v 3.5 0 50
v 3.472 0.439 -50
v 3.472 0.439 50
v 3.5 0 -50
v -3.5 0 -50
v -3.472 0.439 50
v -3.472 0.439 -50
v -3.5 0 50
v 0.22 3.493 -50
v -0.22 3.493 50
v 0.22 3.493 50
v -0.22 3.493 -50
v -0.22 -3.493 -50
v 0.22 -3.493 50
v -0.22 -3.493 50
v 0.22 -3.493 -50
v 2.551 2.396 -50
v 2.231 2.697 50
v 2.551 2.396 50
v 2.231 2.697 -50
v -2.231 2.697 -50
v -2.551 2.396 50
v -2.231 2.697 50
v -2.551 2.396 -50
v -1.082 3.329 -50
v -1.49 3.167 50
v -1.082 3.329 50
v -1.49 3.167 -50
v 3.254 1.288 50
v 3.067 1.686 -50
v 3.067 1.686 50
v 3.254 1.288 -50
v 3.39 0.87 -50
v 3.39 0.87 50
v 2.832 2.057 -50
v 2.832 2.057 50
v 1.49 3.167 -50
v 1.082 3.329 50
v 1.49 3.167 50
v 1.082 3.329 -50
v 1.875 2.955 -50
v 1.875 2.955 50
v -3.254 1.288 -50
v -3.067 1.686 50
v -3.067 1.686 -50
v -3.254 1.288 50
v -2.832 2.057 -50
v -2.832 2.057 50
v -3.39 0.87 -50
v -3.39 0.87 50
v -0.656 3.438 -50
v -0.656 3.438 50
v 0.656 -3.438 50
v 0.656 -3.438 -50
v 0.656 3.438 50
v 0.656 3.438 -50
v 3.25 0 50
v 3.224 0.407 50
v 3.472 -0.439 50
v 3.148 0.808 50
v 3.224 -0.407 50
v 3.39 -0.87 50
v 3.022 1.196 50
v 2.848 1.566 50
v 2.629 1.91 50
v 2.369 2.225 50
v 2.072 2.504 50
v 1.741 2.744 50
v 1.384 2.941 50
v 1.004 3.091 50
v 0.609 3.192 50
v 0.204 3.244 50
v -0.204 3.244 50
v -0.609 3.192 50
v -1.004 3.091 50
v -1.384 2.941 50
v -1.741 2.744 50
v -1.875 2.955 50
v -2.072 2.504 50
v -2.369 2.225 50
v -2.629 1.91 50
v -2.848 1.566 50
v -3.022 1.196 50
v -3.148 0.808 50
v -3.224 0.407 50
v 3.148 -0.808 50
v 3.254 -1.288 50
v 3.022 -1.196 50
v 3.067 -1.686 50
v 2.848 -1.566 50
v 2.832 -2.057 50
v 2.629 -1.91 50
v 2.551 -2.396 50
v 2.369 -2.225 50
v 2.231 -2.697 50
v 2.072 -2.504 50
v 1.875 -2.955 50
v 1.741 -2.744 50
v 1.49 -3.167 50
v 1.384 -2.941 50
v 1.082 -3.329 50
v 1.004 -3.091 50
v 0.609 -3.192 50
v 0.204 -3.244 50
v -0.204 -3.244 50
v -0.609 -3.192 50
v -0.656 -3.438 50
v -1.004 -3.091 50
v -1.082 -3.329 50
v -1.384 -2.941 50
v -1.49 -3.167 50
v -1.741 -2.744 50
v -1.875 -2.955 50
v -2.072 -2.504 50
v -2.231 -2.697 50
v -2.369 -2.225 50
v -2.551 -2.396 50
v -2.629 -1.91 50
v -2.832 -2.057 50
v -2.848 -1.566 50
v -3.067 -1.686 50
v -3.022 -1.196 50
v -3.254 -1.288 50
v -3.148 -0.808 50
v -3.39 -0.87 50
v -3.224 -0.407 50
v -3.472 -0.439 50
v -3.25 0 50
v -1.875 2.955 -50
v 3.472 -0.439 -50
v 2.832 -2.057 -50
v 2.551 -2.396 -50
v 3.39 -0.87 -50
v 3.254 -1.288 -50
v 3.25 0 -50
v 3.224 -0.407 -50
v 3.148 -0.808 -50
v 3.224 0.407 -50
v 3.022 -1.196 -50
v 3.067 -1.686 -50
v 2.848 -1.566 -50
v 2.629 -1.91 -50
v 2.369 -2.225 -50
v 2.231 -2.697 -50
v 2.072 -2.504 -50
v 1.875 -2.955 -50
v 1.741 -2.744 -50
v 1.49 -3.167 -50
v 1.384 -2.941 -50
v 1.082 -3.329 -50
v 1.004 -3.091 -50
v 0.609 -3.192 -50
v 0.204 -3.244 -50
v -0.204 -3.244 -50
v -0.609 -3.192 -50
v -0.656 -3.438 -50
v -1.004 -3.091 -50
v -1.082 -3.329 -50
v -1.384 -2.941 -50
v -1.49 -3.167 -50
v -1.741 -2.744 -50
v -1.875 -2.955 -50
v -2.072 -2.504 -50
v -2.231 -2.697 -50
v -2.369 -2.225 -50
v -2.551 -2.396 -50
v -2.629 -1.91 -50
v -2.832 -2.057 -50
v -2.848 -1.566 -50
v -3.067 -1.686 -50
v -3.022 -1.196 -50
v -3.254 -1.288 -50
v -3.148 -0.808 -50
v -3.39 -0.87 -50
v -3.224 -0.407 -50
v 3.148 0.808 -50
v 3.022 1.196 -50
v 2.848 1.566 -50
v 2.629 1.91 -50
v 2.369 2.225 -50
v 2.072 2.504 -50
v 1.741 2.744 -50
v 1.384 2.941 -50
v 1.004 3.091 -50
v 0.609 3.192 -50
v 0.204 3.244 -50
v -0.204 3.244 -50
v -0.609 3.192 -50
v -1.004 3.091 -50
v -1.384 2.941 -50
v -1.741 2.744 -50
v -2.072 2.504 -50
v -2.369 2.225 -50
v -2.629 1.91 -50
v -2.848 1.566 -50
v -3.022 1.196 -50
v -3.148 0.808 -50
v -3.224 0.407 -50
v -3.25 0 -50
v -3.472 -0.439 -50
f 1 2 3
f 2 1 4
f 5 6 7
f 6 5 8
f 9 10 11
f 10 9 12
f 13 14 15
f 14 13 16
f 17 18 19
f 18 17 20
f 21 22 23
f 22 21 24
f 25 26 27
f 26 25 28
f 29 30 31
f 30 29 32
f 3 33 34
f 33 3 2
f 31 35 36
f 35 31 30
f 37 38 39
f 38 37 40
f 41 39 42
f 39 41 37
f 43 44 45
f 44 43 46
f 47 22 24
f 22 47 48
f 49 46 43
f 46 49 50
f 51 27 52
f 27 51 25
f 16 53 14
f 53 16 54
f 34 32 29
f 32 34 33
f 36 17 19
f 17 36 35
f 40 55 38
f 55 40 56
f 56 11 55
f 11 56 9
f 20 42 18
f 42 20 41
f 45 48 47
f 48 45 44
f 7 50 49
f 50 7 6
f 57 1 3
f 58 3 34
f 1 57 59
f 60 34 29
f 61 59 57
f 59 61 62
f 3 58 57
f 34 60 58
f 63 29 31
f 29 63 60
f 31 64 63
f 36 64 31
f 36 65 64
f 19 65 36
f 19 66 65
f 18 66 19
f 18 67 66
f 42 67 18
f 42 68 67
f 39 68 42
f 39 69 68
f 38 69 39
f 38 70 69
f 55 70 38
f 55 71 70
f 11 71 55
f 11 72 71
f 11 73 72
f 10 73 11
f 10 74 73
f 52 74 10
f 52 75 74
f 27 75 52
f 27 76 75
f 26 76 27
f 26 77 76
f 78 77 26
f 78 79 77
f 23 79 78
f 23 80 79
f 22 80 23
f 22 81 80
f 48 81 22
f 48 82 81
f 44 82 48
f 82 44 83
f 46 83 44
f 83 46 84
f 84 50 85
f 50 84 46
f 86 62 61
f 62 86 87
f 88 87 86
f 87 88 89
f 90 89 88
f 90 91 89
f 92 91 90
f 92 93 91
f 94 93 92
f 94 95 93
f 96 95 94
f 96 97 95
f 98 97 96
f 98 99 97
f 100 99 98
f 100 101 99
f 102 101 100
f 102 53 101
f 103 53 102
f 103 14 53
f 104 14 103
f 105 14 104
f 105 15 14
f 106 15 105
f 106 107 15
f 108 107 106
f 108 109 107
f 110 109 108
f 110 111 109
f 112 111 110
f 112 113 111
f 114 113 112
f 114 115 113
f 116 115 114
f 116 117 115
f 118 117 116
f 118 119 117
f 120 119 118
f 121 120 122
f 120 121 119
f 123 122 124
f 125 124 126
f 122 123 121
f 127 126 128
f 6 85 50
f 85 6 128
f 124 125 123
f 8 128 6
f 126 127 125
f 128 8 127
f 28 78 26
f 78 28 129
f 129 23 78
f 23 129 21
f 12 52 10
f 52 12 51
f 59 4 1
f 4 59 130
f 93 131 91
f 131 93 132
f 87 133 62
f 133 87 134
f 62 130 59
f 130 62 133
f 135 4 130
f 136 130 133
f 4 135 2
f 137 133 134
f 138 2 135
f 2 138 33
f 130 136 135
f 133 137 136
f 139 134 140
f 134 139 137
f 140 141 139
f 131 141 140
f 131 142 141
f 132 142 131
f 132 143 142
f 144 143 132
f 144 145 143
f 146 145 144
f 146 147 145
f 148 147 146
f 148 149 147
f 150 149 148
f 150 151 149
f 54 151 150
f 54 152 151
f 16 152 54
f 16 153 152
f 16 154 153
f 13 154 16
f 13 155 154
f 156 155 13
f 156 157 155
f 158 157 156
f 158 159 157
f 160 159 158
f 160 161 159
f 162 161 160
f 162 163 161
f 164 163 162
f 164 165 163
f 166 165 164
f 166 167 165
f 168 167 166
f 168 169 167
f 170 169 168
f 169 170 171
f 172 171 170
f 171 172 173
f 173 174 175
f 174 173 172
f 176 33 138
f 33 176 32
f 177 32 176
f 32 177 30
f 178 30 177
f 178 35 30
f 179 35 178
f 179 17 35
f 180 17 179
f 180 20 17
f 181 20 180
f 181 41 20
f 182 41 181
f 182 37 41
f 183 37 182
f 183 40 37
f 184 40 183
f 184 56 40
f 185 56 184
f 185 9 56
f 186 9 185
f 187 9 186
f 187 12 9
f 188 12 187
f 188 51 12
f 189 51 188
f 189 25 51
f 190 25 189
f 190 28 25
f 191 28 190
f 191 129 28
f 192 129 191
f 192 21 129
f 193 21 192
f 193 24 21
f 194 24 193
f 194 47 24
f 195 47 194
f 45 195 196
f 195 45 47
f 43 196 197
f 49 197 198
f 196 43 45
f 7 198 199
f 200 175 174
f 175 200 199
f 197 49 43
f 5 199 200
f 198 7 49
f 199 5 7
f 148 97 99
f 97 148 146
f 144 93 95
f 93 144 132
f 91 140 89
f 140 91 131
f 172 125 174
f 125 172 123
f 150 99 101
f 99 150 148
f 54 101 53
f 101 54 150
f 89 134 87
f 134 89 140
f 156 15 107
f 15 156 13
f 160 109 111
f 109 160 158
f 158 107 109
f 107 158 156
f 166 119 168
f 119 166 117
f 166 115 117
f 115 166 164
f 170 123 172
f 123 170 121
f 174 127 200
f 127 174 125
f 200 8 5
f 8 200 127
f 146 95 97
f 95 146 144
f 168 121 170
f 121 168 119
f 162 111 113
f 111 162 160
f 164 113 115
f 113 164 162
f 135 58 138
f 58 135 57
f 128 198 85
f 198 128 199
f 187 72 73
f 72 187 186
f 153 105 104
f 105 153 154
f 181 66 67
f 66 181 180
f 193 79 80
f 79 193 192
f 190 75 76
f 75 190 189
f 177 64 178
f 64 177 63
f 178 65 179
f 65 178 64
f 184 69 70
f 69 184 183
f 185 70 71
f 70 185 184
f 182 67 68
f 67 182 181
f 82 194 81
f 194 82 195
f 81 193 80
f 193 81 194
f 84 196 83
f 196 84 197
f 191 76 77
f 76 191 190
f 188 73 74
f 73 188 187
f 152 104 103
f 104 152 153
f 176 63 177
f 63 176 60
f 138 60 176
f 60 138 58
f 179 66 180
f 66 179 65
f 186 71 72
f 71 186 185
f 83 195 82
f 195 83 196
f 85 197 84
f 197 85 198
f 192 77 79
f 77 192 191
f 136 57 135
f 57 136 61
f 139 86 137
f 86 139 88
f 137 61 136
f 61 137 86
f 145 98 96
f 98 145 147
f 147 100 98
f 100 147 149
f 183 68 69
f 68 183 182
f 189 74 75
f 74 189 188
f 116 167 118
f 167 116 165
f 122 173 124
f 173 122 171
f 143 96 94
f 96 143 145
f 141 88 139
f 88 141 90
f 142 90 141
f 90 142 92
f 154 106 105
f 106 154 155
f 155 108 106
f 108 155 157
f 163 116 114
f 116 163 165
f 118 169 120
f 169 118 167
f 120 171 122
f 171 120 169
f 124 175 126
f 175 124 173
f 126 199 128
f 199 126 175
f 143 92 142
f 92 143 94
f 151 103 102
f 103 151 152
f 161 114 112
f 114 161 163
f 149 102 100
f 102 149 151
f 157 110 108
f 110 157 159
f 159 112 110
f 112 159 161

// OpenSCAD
$fn = 50;


difference() {
	union() {
		translate(v = [0, 0, -50.0000000000]) {
			cylinder(h = 100, r = 3.5000000000);
		}
	}
	union() {
		translate(v = [0, 0, -100.0000000000]) {
			cylinder(h = 200, r = 3.2500000000);
		}
	}
}
